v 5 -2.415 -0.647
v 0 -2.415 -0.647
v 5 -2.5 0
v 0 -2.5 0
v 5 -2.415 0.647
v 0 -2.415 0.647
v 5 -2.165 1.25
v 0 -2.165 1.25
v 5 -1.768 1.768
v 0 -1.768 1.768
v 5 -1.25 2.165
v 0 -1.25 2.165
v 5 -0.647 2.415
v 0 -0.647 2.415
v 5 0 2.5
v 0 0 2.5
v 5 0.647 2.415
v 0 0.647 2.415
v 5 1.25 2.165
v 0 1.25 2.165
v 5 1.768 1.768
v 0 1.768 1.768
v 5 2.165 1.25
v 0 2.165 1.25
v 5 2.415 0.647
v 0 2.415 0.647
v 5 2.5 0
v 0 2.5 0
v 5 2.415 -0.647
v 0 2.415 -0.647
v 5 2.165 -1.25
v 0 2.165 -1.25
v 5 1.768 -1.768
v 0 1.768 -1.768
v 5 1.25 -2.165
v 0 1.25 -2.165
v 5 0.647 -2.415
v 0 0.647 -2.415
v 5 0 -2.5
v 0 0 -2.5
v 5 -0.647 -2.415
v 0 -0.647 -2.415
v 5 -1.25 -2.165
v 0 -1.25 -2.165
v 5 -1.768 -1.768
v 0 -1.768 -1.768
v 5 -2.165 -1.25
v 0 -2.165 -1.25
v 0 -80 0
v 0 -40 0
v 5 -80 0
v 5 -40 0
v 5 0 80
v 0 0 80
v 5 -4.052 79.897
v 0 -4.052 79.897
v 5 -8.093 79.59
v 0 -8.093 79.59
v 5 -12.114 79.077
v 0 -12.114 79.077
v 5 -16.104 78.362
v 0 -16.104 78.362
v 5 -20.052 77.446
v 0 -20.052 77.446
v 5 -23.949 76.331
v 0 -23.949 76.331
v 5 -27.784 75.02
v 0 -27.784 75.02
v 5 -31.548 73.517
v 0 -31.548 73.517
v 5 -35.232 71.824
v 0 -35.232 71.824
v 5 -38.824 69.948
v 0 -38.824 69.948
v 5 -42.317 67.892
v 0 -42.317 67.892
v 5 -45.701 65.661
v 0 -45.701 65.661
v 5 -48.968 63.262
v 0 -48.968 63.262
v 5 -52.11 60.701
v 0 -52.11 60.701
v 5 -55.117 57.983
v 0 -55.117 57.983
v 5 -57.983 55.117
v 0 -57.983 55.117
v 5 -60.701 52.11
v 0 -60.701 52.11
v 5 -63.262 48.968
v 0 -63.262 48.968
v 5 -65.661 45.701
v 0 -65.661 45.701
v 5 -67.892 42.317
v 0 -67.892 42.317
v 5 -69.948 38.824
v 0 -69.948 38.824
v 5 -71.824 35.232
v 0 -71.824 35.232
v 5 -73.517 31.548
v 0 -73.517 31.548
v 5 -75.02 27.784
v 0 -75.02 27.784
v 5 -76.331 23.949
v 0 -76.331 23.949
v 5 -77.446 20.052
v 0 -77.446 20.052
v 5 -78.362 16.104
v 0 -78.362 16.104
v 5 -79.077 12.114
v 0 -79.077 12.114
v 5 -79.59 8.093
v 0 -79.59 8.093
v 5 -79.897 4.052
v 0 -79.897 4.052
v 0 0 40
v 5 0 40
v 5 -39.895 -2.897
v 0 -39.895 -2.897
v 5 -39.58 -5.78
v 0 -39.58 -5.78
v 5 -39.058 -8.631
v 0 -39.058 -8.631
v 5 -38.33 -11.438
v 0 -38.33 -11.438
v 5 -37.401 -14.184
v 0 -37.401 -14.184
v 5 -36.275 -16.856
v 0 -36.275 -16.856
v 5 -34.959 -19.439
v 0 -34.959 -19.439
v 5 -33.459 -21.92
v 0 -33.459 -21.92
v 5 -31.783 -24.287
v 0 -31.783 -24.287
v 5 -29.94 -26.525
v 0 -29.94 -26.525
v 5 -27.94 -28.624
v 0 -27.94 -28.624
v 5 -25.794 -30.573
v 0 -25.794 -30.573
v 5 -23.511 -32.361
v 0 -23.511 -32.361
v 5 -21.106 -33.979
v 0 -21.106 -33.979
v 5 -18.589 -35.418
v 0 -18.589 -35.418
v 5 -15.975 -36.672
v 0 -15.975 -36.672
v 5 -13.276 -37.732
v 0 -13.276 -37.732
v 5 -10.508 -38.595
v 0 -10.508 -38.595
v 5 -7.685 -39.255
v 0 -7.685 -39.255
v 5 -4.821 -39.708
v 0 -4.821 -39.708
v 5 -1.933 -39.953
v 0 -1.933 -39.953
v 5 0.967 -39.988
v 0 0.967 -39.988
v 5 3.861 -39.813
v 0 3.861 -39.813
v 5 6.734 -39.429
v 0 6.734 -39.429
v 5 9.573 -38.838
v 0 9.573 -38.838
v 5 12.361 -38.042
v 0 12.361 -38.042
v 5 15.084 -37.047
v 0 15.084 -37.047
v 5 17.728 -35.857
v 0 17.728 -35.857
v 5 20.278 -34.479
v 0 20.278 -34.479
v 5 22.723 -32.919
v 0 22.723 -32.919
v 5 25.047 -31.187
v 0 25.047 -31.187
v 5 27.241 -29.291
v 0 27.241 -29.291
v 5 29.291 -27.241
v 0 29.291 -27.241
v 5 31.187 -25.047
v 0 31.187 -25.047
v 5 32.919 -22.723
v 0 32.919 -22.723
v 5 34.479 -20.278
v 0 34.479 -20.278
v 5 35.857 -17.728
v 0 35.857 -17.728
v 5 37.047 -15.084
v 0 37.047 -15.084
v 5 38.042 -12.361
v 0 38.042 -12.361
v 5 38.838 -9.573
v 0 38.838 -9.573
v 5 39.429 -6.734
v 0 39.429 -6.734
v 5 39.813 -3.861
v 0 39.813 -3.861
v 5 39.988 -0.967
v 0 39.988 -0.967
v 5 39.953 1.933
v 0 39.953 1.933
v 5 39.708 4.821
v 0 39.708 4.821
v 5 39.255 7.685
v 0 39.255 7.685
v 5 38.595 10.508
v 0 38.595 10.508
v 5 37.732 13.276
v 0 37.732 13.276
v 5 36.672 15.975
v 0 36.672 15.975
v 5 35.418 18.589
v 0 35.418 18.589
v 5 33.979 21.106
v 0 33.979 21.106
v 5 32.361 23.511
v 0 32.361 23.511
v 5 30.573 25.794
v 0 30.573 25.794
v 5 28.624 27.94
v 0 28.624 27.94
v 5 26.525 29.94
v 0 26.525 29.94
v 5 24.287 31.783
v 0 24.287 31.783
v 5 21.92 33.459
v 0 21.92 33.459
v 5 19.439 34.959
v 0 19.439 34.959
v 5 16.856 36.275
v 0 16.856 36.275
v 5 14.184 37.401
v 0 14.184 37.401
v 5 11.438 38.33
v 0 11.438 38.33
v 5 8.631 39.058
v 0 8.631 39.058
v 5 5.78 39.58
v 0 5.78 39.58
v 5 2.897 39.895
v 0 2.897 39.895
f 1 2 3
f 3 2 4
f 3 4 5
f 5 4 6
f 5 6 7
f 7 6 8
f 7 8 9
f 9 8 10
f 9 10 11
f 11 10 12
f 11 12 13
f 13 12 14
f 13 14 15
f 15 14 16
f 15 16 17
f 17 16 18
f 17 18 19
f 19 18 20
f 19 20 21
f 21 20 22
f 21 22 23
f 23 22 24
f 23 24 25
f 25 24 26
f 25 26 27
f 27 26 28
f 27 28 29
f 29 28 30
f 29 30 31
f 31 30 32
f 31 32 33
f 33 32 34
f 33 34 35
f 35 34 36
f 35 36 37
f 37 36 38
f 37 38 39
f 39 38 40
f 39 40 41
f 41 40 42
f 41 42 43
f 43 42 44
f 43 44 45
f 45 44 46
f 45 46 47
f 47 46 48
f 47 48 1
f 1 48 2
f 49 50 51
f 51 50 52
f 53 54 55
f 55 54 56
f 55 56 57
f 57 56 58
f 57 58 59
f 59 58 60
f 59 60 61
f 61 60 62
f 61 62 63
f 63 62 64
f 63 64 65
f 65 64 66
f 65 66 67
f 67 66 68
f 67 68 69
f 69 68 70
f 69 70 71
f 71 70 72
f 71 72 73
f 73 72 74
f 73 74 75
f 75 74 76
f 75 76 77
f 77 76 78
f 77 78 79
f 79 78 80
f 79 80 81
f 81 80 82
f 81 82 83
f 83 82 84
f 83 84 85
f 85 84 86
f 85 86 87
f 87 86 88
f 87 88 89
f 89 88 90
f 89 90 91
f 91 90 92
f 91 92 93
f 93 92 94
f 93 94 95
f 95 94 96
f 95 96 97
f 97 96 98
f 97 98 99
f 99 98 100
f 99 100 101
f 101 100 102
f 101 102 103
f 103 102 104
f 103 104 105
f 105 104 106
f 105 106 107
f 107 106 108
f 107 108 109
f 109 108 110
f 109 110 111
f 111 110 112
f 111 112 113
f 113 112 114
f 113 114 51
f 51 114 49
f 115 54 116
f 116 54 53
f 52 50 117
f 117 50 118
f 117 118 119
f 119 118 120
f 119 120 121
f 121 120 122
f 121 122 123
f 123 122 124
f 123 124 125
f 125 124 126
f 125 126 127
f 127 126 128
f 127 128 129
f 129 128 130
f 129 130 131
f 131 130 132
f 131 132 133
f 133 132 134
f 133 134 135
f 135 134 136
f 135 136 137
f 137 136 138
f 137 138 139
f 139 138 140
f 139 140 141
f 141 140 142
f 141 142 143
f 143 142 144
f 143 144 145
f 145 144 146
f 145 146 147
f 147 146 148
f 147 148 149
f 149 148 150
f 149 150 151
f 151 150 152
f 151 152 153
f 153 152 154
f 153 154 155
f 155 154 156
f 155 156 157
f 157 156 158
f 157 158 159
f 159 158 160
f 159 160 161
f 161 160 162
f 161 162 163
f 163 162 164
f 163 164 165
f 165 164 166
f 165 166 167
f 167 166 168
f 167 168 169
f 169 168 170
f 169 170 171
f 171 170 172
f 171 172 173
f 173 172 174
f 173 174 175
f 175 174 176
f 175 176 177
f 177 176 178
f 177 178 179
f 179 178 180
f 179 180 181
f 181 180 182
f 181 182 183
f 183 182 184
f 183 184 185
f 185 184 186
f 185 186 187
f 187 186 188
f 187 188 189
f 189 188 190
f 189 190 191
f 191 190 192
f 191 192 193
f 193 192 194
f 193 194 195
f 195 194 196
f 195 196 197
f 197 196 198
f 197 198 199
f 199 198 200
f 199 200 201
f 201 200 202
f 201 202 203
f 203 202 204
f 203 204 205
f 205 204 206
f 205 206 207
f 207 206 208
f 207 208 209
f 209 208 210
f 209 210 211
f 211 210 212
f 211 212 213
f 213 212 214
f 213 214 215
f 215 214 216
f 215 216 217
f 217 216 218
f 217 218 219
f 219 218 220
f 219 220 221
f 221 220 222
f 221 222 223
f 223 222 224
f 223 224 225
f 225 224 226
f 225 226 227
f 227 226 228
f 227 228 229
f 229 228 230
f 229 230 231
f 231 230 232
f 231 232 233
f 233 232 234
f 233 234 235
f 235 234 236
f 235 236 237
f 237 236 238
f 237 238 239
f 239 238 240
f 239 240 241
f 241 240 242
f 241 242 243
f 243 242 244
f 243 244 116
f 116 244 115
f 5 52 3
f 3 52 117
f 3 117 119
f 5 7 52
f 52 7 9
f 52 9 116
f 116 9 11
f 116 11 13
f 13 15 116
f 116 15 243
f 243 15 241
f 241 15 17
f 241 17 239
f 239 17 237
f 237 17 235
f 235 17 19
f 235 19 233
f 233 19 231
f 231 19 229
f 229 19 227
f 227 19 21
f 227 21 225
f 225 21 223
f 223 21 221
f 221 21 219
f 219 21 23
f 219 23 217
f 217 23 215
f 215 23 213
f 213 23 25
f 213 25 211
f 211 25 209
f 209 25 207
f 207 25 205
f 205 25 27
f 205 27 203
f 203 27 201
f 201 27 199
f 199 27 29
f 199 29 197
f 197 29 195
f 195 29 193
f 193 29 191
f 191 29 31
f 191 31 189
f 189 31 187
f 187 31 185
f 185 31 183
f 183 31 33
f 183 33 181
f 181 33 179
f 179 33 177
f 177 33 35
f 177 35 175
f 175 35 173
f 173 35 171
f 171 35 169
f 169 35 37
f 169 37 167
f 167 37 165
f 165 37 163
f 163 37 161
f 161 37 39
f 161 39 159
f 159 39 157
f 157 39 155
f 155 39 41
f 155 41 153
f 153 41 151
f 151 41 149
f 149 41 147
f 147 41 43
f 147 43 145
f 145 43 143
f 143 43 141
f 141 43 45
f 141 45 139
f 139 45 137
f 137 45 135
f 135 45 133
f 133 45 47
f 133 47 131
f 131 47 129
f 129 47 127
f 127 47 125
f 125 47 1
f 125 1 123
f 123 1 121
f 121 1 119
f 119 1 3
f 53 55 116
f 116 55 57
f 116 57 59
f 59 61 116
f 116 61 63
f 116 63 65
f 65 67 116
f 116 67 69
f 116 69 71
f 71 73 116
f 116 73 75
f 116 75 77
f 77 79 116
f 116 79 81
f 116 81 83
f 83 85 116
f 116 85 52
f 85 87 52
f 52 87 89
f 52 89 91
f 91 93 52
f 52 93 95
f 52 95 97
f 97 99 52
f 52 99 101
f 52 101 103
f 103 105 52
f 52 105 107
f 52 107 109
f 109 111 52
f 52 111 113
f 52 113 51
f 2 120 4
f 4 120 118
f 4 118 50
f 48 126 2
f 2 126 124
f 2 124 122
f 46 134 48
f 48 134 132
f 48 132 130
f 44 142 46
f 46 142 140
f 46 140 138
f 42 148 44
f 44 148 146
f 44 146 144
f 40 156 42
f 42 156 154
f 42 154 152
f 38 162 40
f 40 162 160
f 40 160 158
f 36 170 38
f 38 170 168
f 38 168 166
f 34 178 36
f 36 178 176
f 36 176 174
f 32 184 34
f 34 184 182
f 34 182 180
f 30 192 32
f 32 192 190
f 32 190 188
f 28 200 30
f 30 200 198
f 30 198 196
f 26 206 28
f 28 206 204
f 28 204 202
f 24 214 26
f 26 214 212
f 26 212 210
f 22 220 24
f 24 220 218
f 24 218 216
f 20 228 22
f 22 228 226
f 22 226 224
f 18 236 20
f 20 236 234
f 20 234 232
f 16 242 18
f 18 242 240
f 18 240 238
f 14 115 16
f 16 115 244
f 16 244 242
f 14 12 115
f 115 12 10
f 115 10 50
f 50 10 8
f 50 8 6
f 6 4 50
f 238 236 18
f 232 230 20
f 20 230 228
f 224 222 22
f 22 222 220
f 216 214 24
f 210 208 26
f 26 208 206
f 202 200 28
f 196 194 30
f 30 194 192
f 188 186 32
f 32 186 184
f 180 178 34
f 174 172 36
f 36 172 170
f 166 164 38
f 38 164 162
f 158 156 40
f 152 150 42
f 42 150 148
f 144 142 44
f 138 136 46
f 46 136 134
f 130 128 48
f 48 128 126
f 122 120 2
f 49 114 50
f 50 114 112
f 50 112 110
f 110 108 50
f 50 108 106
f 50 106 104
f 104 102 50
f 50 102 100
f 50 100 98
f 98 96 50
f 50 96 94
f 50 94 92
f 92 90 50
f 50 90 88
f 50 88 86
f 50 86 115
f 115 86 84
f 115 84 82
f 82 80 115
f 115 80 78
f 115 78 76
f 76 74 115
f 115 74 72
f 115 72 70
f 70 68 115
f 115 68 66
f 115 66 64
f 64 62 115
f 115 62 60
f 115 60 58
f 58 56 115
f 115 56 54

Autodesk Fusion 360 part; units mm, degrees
sketch "Obturator" plane through (0, 0, 0) normal (1, 0, 0) x (0, 1, 0)
  circle A0 centre (0, 0) radius 80
  line L0 (85, 85) -> (-85, 85)
  line L1 (-85, 85) -> (-85, -85)
  line L2 (-85, -85) -> (85, -85)
  line L3 (85, -85) -> (85, 85)
  line L4 (85, 85) -> (-85, -85) construction
  line L5 (-85, 85) -> (85, -85) construction
  line L6 (-55, 55) -> (-30.5, 55)
  line L7 (-30.5, 55) -> (-30.5, 36)
  line L8 (-30.5, 36) -> (-55, 36)
  line L9 (-55, 36) -> (-55, 55)
  circle A1 centre (0, 0) radius 40
  line L10 (0, 0) -> (0, 80)
  line L11 (0, 0) -> (-80, 0)
  circle A2 centre (0, 0) radius 2.5
  dimension "d1" = 160
  dimension "d2" = 170
  dimension "d3" = 170
  dimension "d4" = 24.5
  dimension "d5" = 19
  dimension "d6" = 30
  dimension "d7" = 30
  dimension "d8" = 80
  dimension "d9" = 5
extrude "Extrude1" add sketch "Obturator" along normal blind 5 contours A0 A1 L10 L11 | A1 L10 L11 A2 | A1 L10 L11 A2 | L6 L7 L8 L9 picked at (-15.8593, 57.9262)
